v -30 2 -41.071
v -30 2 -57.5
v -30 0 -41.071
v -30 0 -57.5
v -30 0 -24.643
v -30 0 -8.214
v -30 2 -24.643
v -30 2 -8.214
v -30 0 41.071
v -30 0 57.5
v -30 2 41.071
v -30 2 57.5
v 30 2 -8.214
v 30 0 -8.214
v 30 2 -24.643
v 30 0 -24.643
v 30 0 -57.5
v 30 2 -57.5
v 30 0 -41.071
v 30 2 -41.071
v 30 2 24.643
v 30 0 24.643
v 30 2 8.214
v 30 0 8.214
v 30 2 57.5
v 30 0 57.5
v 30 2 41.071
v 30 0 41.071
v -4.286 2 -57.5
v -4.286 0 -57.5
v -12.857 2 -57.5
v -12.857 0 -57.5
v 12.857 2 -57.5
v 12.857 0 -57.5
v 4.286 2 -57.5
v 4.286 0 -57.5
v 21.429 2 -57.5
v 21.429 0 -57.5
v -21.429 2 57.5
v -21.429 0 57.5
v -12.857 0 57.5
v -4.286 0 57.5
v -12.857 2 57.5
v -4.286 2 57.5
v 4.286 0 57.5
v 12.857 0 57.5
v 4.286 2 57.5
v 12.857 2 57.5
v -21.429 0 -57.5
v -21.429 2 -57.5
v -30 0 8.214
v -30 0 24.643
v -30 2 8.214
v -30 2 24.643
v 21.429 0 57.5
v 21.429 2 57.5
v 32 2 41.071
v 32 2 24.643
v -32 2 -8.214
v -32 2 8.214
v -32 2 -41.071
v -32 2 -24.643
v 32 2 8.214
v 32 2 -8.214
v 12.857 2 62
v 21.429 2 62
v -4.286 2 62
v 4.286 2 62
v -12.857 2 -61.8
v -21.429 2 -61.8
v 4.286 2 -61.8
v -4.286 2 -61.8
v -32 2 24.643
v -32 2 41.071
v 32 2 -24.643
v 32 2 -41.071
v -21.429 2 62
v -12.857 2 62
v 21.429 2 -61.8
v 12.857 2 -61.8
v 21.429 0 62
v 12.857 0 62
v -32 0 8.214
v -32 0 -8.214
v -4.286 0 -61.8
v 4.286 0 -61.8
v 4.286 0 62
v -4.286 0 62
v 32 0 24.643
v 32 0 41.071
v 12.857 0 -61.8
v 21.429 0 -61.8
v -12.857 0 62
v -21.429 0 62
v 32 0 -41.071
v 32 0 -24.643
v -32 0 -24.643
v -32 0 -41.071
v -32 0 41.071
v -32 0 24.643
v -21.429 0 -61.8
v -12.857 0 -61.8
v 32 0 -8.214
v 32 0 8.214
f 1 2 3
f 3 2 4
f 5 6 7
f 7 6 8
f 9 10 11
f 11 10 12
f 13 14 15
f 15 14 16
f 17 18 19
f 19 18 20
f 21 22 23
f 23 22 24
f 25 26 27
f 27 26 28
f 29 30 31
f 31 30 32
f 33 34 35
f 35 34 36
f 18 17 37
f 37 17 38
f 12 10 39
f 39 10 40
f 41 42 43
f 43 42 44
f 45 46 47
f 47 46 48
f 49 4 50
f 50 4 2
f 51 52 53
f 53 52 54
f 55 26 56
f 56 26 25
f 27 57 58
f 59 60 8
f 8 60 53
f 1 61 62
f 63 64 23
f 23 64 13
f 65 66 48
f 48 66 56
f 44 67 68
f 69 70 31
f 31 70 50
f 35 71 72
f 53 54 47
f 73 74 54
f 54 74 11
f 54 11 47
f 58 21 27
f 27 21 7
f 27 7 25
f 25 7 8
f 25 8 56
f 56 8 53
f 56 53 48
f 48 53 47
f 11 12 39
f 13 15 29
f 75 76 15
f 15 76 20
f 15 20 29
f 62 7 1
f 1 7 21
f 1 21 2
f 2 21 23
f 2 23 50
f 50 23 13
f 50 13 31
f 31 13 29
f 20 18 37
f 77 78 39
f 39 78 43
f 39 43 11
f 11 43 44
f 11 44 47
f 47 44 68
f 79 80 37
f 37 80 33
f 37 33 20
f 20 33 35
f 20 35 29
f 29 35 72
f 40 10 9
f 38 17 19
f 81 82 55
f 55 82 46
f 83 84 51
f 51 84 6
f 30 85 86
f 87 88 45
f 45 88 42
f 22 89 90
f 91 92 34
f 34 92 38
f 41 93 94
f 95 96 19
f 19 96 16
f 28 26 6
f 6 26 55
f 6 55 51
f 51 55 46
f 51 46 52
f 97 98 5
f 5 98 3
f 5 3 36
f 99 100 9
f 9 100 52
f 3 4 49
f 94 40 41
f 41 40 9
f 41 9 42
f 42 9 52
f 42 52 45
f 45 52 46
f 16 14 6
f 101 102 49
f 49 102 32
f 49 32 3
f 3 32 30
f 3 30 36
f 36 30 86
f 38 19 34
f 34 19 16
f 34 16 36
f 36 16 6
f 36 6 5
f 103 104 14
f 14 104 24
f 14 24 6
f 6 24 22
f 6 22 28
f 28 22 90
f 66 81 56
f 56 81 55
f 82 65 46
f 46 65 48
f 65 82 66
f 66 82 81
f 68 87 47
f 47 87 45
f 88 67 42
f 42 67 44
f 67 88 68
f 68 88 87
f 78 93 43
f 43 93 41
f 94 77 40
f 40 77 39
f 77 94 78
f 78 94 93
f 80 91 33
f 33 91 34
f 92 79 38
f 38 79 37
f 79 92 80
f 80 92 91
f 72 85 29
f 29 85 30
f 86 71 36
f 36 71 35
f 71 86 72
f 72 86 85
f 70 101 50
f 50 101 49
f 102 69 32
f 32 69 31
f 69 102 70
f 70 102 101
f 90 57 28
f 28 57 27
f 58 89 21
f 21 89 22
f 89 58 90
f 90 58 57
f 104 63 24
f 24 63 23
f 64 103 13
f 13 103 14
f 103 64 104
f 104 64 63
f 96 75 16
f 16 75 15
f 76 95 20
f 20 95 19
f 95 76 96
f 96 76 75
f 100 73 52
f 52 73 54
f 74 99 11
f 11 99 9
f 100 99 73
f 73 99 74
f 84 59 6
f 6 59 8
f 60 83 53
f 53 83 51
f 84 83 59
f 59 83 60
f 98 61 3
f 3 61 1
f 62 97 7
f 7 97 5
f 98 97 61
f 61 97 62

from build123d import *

# Parameters (mm, degrees)
SKETCH_4_W      = 60
SKETCH_4_H      = 115
EXTRUDE_1_DEPTH = 2
SKETCH_5_W      = 8.571428572
SKETCH_5_H      = 2
EXTRUDE_2_DEPTH = 4.5
EXTRUDE_START   = -115
SKETCH_5_3_W    = 8.571428572
SKETCH_5_3_H    = 2
EXTRUDE_3_DEPTH = 4.3
SKETCH_6_W      = 16.428571428
SKETCH_6_H      = 2
EXTRUDE_4_DEPTH = 2
EXTRUDE_START_2 = -60
SKETCH_6_2_W    = 16.428571428
SKETCH_6_2_H    = 2
EXTRUDE_5_DEPTH = 2


with BuildPart() as part:
    # 草图4 → 凸台-拉伸1 (new body)
    with BuildSketch(Plane(origin=(0, 0, 0), x_dir=(1, 0, 0), z_dir=(0, 1, 0))):
        Rectangle(SKETCH_4_W, SKETCH_4_H)
    extrude(amount=EXTRUDE_1_DEPTH)

    # 草图5 → 凸台-拉伸2 (add)
    with BuildSketch(Plane.XY.offset(57.5)):
        with Locations((17.142857143, 1)):
            Rectangle(SKETCH_5_W, SKETCH_5_H)
        with Locations((0, 1)):
            Rectangle(SKETCH_5_W, SKETCH_5_H)
        with Locations((-17.142857143, 1)):
            Rectangle(SKETCH_5_W, SKETCH_5_H)
    extrude(amount=EXTRUDE_2_DEPTH)

    # 草图5<3> → 凸台-拉伸3 (add)
    with BuildSketch(Plane.XY.offset(57.5).offset(EXTRUDE_START)):
        with Locations((17.142857143, 1)):
            Rectangle(SKETCH_5_3_W, SKETCH_5_3_H)
        with Locations((0, 1)):
            Rectangle(SKETCH_5_3_W, SKETCH_5_3_H)
        with Locations((-17.142857143, 1)):
            Rectangle(SKETCH_5_3_W, SKETCH_5_3_H)
    extrude(amount=-EXTRUDE_3_DEPTH)

    # 草图6 → 凸台-拉伸4 (add)
    with BuildSketch(Plane(origin=(30, 0, 0), x_dir=(0, 0, -1), z_dir=(1, 0, 0))):
        with Locations((-32.857142857, 1)):
            Rectangle(SKETCH_6_W, SKETCH_6_H)
        with Locations((0, 1)):
            Rectangle(SKETCH_6_W, SKETCH_6_H)
        with Locations((32.857142857, 1)):
            Rectangle(SKETCH_6_W, SKETCH_6_H)
    extrude(amount=EXTRUDE_4_DEPTH)

    # 草图6<2> → 凸台-拉伸5 (add)
    with BuildSketch(Plane(origin=(30, 0, 0), x_dir=(0, 0, -1), z_dir=(1, 0, 0)).offset(EXTRUDE_START_2)):
        with Locations((-32.857142857, 1)):
            Rectangle(SKETCH_6_2_W, SKETCH_6_2_H)
        with Locations((0, 1)):
            Rectangle(SKETCH_6_2_W, SKETCH_6_2_H)
        with Locations((32.857142857, 1)):
            Rectangle(SKETCH_6_2_W, SKETCH_6_2_H)
    extrude(amount=-EXTRUDE_5_DEPTH)


solid = part.part
